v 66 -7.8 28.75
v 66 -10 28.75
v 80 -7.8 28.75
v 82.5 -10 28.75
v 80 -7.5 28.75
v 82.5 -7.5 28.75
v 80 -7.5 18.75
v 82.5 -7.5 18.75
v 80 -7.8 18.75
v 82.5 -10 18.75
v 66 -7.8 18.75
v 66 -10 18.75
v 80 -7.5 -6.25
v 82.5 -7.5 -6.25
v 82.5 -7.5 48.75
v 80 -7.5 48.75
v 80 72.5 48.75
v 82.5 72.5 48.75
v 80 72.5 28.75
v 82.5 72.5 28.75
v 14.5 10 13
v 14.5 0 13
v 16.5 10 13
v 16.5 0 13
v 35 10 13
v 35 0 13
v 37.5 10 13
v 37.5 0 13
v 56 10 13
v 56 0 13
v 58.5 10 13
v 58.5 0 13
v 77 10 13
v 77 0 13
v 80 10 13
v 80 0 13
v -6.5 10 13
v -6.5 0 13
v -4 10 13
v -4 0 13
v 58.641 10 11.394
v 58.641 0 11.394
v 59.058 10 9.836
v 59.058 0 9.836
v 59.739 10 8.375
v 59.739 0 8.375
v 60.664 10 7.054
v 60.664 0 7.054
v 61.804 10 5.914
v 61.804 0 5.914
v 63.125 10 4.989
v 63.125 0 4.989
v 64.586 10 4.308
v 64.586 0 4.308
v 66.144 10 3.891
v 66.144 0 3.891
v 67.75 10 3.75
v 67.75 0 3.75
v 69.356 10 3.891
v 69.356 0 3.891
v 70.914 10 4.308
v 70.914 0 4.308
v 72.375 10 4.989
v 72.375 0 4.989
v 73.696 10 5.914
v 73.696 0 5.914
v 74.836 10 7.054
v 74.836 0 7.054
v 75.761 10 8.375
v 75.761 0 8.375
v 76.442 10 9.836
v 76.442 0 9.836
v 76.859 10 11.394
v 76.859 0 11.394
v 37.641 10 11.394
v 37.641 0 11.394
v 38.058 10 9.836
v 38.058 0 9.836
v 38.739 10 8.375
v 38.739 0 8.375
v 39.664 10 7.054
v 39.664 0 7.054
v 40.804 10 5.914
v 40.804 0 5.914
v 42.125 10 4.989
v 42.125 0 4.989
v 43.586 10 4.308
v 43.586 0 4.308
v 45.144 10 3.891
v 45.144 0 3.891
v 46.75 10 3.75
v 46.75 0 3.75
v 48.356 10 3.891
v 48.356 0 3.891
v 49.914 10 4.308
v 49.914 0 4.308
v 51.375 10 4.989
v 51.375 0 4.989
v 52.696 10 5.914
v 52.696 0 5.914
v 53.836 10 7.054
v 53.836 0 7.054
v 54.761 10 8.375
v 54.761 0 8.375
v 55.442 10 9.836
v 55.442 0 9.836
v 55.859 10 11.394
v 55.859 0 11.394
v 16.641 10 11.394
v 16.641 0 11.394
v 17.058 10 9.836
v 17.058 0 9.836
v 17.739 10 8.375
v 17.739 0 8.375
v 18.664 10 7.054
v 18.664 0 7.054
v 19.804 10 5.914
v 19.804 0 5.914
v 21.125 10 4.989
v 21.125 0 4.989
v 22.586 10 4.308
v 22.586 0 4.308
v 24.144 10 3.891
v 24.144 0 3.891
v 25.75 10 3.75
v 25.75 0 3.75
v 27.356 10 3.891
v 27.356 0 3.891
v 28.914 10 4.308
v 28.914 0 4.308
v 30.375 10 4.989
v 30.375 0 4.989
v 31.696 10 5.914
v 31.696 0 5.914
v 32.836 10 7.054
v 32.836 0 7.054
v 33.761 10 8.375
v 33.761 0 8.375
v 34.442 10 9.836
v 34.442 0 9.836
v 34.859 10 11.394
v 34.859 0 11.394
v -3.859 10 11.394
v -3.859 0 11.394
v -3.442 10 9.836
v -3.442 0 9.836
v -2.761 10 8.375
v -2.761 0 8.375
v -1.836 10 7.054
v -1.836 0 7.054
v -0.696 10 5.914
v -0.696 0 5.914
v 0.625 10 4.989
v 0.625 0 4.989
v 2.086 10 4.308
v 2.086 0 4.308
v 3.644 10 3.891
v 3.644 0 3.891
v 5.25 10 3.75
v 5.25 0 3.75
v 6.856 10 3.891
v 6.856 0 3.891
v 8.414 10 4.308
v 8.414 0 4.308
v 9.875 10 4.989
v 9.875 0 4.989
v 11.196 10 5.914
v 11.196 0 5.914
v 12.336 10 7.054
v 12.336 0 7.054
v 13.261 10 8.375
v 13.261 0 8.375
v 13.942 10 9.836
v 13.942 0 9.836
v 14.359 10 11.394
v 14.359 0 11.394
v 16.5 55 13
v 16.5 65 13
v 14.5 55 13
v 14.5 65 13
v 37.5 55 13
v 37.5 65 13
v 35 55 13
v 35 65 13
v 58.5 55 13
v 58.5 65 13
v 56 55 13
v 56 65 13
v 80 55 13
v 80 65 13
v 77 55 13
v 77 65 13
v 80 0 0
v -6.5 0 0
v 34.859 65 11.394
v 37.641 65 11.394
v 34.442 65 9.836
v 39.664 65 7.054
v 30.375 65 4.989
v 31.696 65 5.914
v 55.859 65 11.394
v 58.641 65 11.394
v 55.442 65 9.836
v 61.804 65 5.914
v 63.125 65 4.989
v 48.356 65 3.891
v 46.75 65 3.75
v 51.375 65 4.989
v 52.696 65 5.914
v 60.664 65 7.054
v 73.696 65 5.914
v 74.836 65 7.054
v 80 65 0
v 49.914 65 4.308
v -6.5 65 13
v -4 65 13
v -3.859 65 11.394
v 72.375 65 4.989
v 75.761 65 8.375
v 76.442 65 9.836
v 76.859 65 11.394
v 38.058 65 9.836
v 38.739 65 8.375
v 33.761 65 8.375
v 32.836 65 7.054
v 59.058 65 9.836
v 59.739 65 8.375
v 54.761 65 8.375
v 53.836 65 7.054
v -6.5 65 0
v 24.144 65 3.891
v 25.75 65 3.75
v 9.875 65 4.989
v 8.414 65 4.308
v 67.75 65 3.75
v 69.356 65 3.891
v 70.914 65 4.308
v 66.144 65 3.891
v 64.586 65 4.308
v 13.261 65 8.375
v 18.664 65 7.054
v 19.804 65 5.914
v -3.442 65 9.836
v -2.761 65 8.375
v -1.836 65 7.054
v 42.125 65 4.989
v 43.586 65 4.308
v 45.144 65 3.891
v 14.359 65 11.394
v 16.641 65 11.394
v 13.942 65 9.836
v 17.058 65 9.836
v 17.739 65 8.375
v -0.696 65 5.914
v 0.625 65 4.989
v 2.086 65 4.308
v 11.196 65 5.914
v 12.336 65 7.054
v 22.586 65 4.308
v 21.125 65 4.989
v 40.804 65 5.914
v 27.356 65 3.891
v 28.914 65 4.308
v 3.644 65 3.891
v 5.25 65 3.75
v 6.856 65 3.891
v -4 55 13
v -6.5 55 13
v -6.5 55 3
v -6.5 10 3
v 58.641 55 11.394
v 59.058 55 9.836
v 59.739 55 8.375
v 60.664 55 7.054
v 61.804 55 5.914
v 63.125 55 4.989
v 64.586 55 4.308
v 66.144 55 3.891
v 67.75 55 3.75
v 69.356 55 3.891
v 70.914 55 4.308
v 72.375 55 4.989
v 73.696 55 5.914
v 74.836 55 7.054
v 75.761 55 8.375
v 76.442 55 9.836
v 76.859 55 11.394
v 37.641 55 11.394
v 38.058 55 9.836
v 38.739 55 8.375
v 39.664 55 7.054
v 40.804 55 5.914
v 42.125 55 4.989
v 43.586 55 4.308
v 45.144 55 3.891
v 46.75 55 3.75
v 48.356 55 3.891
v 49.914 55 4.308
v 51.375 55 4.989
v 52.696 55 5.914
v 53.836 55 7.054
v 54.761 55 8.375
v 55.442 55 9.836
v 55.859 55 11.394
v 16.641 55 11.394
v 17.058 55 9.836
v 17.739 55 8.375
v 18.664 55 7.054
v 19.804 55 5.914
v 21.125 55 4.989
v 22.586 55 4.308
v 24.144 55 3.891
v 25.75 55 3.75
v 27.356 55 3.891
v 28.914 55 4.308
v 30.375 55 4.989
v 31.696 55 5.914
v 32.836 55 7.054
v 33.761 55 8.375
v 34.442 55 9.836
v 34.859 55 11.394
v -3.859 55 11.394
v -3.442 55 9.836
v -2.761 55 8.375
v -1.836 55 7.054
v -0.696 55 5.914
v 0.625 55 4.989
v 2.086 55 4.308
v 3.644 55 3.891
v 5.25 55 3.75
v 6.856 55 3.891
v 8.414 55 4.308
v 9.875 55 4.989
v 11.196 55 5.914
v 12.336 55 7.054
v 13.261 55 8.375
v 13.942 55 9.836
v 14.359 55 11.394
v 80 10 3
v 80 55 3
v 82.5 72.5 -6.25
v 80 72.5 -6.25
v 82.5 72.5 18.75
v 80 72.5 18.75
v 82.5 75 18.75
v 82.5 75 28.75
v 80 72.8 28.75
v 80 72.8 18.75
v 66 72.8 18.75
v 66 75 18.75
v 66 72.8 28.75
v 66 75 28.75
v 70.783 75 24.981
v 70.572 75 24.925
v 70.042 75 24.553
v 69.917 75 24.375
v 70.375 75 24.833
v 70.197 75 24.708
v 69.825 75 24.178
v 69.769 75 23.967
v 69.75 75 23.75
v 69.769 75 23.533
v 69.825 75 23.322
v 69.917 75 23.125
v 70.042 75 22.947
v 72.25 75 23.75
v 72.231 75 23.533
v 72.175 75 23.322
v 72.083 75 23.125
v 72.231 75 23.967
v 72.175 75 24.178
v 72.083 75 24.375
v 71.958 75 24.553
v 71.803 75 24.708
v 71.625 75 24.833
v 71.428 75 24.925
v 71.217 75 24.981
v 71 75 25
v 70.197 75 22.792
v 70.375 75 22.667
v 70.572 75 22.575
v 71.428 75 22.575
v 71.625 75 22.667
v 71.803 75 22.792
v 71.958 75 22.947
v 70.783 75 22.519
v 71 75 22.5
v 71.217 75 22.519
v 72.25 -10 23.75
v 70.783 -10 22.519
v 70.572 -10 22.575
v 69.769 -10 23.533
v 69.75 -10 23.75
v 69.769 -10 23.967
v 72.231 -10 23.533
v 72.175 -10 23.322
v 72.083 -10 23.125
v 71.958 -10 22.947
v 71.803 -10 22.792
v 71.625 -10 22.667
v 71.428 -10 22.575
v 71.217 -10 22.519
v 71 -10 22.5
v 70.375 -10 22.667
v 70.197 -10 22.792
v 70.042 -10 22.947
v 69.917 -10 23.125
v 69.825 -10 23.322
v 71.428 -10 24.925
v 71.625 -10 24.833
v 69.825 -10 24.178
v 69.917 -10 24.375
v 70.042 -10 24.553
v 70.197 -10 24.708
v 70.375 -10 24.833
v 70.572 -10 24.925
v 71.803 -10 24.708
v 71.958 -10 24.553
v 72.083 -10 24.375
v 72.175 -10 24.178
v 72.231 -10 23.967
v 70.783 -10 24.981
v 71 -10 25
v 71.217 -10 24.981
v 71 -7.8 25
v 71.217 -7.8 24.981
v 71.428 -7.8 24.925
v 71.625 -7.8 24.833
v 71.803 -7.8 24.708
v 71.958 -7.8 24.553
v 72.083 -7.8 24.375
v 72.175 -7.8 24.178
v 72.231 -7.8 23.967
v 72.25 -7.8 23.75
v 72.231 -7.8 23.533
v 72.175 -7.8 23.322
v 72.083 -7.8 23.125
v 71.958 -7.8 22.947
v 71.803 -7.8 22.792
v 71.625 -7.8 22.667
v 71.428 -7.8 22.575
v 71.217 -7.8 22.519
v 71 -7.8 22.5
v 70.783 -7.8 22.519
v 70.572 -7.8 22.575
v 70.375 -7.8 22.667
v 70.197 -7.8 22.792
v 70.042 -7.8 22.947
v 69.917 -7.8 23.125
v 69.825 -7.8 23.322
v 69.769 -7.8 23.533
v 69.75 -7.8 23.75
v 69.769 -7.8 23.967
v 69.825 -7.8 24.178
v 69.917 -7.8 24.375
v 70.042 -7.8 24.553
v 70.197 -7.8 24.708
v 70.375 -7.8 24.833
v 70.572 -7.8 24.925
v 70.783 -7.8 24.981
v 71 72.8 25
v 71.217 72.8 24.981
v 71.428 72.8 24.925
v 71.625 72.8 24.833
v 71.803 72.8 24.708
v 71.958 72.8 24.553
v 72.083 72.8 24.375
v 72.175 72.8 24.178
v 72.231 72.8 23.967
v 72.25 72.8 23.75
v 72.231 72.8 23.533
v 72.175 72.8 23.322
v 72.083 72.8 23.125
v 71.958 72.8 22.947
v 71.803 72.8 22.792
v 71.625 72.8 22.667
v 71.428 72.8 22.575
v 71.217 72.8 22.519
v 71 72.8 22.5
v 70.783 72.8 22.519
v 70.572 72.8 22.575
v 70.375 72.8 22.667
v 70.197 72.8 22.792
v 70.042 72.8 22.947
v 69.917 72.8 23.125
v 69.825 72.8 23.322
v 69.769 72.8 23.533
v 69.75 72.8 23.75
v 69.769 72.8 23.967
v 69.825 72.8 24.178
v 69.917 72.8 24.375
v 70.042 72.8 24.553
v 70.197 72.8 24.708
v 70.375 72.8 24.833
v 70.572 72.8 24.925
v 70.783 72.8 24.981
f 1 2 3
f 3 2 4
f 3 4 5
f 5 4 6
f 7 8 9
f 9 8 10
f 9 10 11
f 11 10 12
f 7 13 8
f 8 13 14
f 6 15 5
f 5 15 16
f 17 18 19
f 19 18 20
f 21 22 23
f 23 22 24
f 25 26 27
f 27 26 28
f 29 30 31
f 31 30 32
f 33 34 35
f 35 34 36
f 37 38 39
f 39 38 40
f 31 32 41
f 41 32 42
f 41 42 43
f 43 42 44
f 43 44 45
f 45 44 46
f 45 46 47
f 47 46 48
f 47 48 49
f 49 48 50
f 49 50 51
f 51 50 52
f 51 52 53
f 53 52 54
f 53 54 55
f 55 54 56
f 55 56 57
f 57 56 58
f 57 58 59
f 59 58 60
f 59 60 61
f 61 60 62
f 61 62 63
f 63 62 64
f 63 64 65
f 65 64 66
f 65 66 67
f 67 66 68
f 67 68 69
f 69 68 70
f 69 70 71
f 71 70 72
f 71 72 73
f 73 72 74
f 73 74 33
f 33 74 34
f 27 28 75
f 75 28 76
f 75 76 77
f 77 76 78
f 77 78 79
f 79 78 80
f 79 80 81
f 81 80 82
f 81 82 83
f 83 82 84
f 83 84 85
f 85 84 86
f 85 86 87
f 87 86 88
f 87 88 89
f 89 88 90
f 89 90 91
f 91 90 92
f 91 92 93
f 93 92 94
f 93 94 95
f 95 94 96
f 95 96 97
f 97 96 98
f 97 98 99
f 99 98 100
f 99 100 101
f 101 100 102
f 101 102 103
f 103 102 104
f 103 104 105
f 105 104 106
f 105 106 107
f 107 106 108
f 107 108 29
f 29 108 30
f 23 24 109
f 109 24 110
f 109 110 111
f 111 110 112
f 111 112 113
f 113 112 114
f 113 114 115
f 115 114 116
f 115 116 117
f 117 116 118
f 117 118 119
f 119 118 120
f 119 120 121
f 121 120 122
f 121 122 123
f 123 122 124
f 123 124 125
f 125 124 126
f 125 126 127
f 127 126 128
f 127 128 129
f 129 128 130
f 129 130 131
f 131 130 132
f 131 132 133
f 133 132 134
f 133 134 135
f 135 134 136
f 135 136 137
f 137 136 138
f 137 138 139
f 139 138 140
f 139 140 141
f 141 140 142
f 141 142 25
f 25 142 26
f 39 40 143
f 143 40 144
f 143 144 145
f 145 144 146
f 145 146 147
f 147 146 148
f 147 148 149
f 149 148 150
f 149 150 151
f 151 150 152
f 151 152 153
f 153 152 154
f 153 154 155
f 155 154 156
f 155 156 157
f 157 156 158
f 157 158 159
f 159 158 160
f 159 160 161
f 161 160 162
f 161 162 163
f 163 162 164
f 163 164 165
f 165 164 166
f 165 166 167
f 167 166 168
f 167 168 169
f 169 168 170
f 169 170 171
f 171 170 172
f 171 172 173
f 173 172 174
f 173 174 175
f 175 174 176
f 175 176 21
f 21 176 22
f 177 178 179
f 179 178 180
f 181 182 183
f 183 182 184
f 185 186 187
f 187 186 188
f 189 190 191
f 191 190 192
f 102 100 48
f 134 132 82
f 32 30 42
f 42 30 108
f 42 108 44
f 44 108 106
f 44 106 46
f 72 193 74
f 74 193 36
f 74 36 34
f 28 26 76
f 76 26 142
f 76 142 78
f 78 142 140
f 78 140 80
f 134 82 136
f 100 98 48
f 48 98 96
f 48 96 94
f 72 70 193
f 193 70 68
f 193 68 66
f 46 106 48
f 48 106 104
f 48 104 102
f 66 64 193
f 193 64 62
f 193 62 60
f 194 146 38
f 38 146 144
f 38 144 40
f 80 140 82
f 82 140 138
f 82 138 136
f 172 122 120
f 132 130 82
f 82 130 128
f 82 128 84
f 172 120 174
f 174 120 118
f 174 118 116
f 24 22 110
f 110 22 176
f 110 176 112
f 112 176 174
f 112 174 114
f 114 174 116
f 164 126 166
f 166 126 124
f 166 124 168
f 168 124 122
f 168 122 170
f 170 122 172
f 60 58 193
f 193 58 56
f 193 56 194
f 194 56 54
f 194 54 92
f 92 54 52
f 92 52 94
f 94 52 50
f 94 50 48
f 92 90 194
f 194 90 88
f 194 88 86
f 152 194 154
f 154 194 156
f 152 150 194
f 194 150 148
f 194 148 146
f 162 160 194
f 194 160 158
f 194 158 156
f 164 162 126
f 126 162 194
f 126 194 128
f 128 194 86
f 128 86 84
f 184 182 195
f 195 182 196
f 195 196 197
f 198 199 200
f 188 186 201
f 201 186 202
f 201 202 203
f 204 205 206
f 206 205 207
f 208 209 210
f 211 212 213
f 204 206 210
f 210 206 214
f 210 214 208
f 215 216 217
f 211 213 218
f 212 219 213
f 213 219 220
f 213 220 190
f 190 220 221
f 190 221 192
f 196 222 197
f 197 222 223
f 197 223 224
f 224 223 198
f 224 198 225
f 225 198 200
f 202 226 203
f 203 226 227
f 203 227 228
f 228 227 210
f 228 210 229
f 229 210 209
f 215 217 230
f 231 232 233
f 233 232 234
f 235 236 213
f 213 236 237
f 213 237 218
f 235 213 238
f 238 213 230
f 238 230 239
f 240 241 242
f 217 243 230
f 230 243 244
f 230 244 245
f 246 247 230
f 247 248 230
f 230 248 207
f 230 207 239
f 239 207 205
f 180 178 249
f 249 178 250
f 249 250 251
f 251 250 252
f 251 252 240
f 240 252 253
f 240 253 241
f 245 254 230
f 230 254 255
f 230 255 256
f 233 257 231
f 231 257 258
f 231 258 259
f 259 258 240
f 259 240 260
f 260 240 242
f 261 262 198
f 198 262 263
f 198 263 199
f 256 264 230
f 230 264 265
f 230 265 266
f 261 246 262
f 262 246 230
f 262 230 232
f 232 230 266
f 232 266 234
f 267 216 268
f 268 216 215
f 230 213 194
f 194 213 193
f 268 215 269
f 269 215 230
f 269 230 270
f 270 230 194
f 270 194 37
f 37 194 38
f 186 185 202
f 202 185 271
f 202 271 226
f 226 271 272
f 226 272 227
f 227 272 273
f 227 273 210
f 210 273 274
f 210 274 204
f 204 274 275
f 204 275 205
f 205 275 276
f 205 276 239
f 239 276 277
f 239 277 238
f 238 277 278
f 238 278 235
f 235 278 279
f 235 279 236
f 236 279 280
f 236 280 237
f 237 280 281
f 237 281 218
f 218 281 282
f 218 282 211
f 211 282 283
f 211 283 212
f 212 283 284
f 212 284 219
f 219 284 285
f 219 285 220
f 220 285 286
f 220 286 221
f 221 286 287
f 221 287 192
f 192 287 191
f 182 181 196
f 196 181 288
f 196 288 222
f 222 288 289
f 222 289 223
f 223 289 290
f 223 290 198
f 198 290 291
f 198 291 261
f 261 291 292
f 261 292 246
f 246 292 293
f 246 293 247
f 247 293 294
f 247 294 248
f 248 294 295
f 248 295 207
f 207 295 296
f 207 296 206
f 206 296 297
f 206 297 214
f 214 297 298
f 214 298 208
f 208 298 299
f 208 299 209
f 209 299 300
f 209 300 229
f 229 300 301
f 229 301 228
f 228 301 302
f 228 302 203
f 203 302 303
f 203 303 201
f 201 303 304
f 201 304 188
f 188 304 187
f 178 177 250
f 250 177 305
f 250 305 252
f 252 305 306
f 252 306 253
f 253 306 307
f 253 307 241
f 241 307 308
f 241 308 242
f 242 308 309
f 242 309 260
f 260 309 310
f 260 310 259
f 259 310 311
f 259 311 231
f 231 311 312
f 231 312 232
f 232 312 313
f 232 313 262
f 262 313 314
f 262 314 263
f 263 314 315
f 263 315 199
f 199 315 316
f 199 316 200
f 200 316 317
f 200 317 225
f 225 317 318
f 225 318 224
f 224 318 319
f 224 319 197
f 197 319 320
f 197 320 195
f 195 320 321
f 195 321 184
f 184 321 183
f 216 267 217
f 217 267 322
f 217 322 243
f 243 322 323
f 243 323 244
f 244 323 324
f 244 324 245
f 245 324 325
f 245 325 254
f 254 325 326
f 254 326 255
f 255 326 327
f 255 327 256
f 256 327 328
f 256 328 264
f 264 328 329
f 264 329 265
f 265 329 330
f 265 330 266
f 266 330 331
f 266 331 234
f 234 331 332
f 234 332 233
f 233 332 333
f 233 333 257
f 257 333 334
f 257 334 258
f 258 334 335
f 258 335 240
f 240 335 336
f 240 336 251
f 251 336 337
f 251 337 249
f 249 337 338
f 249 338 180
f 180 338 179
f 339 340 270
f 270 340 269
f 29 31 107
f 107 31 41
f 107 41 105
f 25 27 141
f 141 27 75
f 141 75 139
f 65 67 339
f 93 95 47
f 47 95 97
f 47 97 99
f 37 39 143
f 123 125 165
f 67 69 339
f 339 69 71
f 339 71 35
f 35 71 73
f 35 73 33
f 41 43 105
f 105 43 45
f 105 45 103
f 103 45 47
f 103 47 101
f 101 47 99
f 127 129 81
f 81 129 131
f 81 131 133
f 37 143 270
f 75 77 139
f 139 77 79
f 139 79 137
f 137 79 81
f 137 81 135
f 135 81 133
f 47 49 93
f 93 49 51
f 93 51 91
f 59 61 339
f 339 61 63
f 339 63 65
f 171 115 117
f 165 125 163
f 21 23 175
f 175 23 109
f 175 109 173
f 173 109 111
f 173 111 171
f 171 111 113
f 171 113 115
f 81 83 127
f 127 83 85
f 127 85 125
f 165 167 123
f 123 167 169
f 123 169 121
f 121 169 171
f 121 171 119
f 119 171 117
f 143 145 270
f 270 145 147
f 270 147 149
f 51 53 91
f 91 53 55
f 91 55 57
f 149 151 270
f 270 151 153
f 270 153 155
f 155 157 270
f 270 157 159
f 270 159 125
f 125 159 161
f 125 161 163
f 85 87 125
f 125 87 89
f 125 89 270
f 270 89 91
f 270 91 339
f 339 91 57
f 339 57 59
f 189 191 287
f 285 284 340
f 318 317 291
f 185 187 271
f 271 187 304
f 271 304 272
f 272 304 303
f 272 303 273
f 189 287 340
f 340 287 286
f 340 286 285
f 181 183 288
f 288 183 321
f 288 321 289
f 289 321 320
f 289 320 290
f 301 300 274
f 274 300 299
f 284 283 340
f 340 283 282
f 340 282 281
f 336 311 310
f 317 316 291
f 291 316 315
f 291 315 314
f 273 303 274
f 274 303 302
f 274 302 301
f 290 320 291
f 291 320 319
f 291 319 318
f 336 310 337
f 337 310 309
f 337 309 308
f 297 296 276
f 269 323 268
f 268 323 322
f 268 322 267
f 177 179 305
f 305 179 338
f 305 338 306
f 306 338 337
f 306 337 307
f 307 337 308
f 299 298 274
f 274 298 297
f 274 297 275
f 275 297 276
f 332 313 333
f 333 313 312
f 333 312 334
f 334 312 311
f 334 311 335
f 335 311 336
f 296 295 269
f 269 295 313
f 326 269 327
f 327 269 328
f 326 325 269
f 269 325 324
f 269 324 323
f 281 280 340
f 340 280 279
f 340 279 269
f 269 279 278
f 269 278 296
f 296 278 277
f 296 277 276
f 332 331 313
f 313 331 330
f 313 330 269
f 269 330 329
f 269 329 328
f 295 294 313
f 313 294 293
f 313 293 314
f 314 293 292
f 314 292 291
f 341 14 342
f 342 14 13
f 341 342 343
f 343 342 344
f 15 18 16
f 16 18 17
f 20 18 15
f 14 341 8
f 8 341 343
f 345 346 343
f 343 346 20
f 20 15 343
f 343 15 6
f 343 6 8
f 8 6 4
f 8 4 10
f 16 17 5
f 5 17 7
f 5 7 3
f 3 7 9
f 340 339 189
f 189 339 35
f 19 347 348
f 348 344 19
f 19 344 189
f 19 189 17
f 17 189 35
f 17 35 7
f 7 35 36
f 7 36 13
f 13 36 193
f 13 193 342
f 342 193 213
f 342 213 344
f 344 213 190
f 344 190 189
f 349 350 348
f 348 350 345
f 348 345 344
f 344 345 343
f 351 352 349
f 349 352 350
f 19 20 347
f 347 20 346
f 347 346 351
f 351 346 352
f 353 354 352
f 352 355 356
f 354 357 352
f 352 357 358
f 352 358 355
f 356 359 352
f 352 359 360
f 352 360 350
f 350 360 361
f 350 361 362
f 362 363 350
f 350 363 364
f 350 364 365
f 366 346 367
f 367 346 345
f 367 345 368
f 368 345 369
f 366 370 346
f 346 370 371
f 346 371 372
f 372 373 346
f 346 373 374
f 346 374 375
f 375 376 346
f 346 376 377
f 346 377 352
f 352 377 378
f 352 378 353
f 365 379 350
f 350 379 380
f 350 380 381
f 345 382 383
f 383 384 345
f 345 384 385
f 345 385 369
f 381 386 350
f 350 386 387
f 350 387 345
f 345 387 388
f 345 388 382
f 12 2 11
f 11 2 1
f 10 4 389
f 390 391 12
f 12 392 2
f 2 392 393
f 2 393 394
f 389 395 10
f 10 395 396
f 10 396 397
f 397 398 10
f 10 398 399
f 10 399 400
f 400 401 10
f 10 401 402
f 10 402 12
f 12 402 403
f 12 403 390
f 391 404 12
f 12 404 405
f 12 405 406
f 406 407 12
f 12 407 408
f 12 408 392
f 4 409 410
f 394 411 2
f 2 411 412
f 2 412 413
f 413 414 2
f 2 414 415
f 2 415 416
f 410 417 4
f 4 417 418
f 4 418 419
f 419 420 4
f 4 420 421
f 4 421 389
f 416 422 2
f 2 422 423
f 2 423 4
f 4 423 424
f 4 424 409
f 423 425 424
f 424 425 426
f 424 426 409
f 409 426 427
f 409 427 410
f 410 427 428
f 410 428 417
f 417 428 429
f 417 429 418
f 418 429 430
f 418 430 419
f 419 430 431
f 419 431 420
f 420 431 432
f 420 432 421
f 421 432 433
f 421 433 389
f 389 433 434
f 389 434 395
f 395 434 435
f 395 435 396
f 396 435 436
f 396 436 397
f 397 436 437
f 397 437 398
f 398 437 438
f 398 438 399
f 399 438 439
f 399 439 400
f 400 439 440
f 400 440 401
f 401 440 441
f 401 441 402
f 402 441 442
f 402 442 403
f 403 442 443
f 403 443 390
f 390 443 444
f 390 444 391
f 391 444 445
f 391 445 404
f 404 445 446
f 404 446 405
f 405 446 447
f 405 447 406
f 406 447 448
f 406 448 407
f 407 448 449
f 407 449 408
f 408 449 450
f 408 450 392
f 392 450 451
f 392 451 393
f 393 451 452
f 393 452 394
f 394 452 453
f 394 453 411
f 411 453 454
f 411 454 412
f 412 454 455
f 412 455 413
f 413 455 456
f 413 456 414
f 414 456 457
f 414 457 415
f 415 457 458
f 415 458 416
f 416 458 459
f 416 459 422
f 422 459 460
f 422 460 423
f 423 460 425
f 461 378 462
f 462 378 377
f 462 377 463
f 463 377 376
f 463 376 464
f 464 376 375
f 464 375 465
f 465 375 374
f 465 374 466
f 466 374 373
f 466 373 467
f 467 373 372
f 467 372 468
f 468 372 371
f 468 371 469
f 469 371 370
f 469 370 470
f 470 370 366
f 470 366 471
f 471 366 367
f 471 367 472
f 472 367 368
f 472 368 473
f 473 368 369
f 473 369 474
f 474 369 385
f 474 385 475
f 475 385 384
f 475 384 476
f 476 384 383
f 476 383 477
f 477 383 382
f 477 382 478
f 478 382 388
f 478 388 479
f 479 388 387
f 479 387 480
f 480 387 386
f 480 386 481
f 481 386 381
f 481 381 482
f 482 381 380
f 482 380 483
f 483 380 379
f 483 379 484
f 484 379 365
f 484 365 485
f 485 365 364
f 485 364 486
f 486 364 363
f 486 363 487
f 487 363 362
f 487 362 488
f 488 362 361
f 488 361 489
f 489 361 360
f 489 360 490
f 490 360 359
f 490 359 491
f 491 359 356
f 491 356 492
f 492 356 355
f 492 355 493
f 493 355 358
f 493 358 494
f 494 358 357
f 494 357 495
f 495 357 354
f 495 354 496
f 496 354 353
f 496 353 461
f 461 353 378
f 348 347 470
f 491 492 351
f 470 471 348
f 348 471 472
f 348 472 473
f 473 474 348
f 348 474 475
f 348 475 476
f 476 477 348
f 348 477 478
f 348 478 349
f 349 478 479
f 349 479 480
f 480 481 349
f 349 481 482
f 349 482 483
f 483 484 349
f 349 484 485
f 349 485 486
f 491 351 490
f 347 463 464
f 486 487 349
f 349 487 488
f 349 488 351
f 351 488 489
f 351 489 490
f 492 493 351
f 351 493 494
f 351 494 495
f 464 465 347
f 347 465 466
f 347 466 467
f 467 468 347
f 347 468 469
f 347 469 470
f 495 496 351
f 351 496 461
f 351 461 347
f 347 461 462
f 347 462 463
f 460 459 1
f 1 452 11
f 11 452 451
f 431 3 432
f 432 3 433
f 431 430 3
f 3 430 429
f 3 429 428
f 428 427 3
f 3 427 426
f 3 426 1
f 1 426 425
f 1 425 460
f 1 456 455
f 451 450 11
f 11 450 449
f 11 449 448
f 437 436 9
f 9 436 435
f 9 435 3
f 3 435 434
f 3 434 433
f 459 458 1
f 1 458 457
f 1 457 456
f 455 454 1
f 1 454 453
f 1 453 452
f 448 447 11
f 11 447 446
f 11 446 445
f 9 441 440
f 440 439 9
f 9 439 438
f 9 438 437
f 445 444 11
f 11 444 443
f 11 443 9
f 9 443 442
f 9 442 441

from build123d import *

# Parameters (mm, degrees)
ESBO_O1_W                = 80
ESBO_O1_H                = 65
RESSALTO_EXTRUS_O1_DEPTH = 13
ESBO_O3_W                = 13
ESBO_O3_H                = 65
RESSALTO_EXTRUS_O2_DEPTH = 6.5
CORTE_EXTRUS_O1_DEPTH    = 65
CORTE_EXTRUS_O2_REACH    = 110.978
ESBO_O5_W                = 10
ESBO_O5_H                = 45
RESSALTO_EXTRUS_O4_DEPTH = 2.5
ESBO_O7_W                = 16.5
ESBO_O7_H                = 10
RESSALTO_EXTRUS_O5_DEPTH = 2.5
ESBO_O9_R                = 1.25
CORTE_EXTRUS_O3_DEPTH    = 129.092983805
ESBO_O11_W               = 14
ESBO_O11_H               = 10
CORTE_EXTRUS_O4_DEPTH    = 0.3


with BuildPart() as part:
    # Esboço1 → Ressalto-extrusão1 (new body)
    with BuildSketch(Plane.XY):
        with Locations((40, 32.5)):
            Rectangle(ESBO_O1_W, ESBO_O1_H)
    extrude(amount=RESSALTO_EXTRUS_O1_DEPTH)

    # Esboço3 → Ressalto-extrusão2 (add)
    with BuildSketch(Plane.ZY):
        with Locations((6.5, 32.5)):
            Rectangle(ESBO_O3_W, ESBO_O3_H)
    extrude(amount=RESSALTO_EXTRUS_O2_DEPTH)

    # Esboço4 → Corte-extrusão1 (cut)
    with BuildSketch(Plane(origin=(0, 0, 0), x_dir=(-1, 0, 0), z_dir=(0, -1, 0))):
        with BuildLine():
            ThreePointArc((-14.5, -13), (-5.25, -22.25), (4, -13))
            Line((4, -13), (-5.25, -13))
            Line((-5.25, -13), (-14.5, -13))
        make_face()
        with BuildLine():
            Line((-5.25, -13), (4, -13))
            ThreePointArc((4, -13), (-5.25, -3.75), (-14.5, -13))
            Line((-14.5, -13), (-5.25, -13))
        make_face()
        with BuildLine():
            ThreePointArc((-35, -13), (-25.75, -22.25), (-16.5, -13))
            Line((-16.5, -13), (-25.75, -13))
            Line((-25.75, -13), (-35, -13))
        make_face()
        with BuildLine():
            Line((-25.75, -13), (-16.5, -13))
            ThreePointArc((-16.5, -13), (-25.75, -3.75), (-35, -13))
            Line((-35, -13), (-25.75, -13))
        make_face()
        with BuildLine():
            ThreePointArc((-56, -13), (-46.75, -22.25), (-37.5, -13))
            Line((-37.5, -13), (-46.75, -13))
            Line((-46.75, -13), (-56, -13))
        make_face()
        with BuildLine():
            Line((-46.75, -13), (-37.5, -13))
            ThreePointArc((-37.5, -13), (-46.75, -3.75), (-56, -13))
            Line((-56, -13), (-46.75, -13))
        make_face()
        with BuildLine():
            ThreePointArc((-77, -13), (-67.75, -22.25), (-58.5, -13))
            Line((-58.5, -13), (-67.75, -13))
            Line((-67.75, -13), (-77, -13))
        make_face()
        with BuildLine():
            Line((-67.75, -13), (-58.5, -13))
            ThreePointArc((-58.5, -13), (-67.75, -3.75), (-77, -13))
            Line((-77, -13), (-67.75, -13))
        make_face()
    extrude(amount=-CORTE_EXTRUS_O1_DEPTH, mode=Mode.SUBTRACT)

    # Esboço5 → Corte-extrusão2 (cut, up to next)
    with BuildSketch(Plane(origin=(80, 0, 0), x_dir=(0, 0, -1), z_dir=(1, 0, 0)), mode=Mode.PRIVATE) as corte_extrus_o2_sk1:
        with Locations((-8, 32.5)):
            Rectangle(ESBO_O5_W, ESBO_O5_H)
    corte_extrus_o2_tool1 = extrude(corte_extrus_o2_sk1.sketch, amount=-CORTE_EXTRUS_O2_REACH, mode=Mode.PRIVATE) & part.part
    add(corte_extrus_o2_tool1.solids().sort_by_distance((80, 32.5, 8))[0], mode=Mode.SUBTRACT)

    # Esboço6 → Ressalto-extrusão4 (add)
    with BuildSketch(Plane(origin=(80, 0, 0), x_dir=(0, 0, -1), z_dir=(1, 0, 0))):
        Polygon((6.25, -7.5), (6.25, 32.5), (6.25, 72.5), (-48.75, 72.5), (-48.75, -7.5), align=None)
    extrude(amount=RESSALTO_EXTRUS_O4_DEPTH)

    # Esboço7 → Ressalto-extrusão5 (add)
    with BuildSketch(Plane(origin=(0, 72.5, 0), x_dir=(1, 0, 0), z_dir=(0, 1, 0))):
        with Locations((74.25, -23.75)):
            Rectangle(ESBO_O7_W, ESBO_O7_H)
    ressalto_extrus_o5 = extrude(amount=RESSALTO_EXTRUS_O5_DEPTH)

    # Espelhar1: Ressalto-extrusão5 across plane
    add(ressalto_extrus_o5.mirror(Plane(origin=(0, 32.5, 0), x_dir=(0, 0, 1), z_dir=(0, -1, 0))))

    # Esboço9 → Corte-extrusão3 (cut, through all)
    with BuildSketch(Plane(origin=(0, 75, 0), x_dir=(1, 0, 0), z_dir=(0, 1, 0))):
        with Locations(Location((71, -23.75, 0), (0, 0, 270))):
            Circle(ESBO_O9_R)
    extrude(amount=-CORTE_EXTRUS_O3_DEPTH, mode=Mode.SUBTRACT)

    # Esboço11 → Corte-extrusão4 (cut)
    with BuildSketch(Plane.XZ.offset(-72.5)):
        with Locations((73, 23.75)):
            Rectangle(ESBO_O11_W, ESBO_O11_H)
    corte_extrus_o4 = extrude(amount=-CORTE_EXTRUS_O4_DEPTH, mode=Mode.SUBTRACT)

    # Espelhar2: Corte-extrusão4 across plane
    add(corte_extrus_o4.mirror(Plane(origin=(0, 32.5, 0), x_dir=(0, 0, 1), z_dir=(0, -1, 0))), mode=Mode.SUBTRACT)


solid = part.part
